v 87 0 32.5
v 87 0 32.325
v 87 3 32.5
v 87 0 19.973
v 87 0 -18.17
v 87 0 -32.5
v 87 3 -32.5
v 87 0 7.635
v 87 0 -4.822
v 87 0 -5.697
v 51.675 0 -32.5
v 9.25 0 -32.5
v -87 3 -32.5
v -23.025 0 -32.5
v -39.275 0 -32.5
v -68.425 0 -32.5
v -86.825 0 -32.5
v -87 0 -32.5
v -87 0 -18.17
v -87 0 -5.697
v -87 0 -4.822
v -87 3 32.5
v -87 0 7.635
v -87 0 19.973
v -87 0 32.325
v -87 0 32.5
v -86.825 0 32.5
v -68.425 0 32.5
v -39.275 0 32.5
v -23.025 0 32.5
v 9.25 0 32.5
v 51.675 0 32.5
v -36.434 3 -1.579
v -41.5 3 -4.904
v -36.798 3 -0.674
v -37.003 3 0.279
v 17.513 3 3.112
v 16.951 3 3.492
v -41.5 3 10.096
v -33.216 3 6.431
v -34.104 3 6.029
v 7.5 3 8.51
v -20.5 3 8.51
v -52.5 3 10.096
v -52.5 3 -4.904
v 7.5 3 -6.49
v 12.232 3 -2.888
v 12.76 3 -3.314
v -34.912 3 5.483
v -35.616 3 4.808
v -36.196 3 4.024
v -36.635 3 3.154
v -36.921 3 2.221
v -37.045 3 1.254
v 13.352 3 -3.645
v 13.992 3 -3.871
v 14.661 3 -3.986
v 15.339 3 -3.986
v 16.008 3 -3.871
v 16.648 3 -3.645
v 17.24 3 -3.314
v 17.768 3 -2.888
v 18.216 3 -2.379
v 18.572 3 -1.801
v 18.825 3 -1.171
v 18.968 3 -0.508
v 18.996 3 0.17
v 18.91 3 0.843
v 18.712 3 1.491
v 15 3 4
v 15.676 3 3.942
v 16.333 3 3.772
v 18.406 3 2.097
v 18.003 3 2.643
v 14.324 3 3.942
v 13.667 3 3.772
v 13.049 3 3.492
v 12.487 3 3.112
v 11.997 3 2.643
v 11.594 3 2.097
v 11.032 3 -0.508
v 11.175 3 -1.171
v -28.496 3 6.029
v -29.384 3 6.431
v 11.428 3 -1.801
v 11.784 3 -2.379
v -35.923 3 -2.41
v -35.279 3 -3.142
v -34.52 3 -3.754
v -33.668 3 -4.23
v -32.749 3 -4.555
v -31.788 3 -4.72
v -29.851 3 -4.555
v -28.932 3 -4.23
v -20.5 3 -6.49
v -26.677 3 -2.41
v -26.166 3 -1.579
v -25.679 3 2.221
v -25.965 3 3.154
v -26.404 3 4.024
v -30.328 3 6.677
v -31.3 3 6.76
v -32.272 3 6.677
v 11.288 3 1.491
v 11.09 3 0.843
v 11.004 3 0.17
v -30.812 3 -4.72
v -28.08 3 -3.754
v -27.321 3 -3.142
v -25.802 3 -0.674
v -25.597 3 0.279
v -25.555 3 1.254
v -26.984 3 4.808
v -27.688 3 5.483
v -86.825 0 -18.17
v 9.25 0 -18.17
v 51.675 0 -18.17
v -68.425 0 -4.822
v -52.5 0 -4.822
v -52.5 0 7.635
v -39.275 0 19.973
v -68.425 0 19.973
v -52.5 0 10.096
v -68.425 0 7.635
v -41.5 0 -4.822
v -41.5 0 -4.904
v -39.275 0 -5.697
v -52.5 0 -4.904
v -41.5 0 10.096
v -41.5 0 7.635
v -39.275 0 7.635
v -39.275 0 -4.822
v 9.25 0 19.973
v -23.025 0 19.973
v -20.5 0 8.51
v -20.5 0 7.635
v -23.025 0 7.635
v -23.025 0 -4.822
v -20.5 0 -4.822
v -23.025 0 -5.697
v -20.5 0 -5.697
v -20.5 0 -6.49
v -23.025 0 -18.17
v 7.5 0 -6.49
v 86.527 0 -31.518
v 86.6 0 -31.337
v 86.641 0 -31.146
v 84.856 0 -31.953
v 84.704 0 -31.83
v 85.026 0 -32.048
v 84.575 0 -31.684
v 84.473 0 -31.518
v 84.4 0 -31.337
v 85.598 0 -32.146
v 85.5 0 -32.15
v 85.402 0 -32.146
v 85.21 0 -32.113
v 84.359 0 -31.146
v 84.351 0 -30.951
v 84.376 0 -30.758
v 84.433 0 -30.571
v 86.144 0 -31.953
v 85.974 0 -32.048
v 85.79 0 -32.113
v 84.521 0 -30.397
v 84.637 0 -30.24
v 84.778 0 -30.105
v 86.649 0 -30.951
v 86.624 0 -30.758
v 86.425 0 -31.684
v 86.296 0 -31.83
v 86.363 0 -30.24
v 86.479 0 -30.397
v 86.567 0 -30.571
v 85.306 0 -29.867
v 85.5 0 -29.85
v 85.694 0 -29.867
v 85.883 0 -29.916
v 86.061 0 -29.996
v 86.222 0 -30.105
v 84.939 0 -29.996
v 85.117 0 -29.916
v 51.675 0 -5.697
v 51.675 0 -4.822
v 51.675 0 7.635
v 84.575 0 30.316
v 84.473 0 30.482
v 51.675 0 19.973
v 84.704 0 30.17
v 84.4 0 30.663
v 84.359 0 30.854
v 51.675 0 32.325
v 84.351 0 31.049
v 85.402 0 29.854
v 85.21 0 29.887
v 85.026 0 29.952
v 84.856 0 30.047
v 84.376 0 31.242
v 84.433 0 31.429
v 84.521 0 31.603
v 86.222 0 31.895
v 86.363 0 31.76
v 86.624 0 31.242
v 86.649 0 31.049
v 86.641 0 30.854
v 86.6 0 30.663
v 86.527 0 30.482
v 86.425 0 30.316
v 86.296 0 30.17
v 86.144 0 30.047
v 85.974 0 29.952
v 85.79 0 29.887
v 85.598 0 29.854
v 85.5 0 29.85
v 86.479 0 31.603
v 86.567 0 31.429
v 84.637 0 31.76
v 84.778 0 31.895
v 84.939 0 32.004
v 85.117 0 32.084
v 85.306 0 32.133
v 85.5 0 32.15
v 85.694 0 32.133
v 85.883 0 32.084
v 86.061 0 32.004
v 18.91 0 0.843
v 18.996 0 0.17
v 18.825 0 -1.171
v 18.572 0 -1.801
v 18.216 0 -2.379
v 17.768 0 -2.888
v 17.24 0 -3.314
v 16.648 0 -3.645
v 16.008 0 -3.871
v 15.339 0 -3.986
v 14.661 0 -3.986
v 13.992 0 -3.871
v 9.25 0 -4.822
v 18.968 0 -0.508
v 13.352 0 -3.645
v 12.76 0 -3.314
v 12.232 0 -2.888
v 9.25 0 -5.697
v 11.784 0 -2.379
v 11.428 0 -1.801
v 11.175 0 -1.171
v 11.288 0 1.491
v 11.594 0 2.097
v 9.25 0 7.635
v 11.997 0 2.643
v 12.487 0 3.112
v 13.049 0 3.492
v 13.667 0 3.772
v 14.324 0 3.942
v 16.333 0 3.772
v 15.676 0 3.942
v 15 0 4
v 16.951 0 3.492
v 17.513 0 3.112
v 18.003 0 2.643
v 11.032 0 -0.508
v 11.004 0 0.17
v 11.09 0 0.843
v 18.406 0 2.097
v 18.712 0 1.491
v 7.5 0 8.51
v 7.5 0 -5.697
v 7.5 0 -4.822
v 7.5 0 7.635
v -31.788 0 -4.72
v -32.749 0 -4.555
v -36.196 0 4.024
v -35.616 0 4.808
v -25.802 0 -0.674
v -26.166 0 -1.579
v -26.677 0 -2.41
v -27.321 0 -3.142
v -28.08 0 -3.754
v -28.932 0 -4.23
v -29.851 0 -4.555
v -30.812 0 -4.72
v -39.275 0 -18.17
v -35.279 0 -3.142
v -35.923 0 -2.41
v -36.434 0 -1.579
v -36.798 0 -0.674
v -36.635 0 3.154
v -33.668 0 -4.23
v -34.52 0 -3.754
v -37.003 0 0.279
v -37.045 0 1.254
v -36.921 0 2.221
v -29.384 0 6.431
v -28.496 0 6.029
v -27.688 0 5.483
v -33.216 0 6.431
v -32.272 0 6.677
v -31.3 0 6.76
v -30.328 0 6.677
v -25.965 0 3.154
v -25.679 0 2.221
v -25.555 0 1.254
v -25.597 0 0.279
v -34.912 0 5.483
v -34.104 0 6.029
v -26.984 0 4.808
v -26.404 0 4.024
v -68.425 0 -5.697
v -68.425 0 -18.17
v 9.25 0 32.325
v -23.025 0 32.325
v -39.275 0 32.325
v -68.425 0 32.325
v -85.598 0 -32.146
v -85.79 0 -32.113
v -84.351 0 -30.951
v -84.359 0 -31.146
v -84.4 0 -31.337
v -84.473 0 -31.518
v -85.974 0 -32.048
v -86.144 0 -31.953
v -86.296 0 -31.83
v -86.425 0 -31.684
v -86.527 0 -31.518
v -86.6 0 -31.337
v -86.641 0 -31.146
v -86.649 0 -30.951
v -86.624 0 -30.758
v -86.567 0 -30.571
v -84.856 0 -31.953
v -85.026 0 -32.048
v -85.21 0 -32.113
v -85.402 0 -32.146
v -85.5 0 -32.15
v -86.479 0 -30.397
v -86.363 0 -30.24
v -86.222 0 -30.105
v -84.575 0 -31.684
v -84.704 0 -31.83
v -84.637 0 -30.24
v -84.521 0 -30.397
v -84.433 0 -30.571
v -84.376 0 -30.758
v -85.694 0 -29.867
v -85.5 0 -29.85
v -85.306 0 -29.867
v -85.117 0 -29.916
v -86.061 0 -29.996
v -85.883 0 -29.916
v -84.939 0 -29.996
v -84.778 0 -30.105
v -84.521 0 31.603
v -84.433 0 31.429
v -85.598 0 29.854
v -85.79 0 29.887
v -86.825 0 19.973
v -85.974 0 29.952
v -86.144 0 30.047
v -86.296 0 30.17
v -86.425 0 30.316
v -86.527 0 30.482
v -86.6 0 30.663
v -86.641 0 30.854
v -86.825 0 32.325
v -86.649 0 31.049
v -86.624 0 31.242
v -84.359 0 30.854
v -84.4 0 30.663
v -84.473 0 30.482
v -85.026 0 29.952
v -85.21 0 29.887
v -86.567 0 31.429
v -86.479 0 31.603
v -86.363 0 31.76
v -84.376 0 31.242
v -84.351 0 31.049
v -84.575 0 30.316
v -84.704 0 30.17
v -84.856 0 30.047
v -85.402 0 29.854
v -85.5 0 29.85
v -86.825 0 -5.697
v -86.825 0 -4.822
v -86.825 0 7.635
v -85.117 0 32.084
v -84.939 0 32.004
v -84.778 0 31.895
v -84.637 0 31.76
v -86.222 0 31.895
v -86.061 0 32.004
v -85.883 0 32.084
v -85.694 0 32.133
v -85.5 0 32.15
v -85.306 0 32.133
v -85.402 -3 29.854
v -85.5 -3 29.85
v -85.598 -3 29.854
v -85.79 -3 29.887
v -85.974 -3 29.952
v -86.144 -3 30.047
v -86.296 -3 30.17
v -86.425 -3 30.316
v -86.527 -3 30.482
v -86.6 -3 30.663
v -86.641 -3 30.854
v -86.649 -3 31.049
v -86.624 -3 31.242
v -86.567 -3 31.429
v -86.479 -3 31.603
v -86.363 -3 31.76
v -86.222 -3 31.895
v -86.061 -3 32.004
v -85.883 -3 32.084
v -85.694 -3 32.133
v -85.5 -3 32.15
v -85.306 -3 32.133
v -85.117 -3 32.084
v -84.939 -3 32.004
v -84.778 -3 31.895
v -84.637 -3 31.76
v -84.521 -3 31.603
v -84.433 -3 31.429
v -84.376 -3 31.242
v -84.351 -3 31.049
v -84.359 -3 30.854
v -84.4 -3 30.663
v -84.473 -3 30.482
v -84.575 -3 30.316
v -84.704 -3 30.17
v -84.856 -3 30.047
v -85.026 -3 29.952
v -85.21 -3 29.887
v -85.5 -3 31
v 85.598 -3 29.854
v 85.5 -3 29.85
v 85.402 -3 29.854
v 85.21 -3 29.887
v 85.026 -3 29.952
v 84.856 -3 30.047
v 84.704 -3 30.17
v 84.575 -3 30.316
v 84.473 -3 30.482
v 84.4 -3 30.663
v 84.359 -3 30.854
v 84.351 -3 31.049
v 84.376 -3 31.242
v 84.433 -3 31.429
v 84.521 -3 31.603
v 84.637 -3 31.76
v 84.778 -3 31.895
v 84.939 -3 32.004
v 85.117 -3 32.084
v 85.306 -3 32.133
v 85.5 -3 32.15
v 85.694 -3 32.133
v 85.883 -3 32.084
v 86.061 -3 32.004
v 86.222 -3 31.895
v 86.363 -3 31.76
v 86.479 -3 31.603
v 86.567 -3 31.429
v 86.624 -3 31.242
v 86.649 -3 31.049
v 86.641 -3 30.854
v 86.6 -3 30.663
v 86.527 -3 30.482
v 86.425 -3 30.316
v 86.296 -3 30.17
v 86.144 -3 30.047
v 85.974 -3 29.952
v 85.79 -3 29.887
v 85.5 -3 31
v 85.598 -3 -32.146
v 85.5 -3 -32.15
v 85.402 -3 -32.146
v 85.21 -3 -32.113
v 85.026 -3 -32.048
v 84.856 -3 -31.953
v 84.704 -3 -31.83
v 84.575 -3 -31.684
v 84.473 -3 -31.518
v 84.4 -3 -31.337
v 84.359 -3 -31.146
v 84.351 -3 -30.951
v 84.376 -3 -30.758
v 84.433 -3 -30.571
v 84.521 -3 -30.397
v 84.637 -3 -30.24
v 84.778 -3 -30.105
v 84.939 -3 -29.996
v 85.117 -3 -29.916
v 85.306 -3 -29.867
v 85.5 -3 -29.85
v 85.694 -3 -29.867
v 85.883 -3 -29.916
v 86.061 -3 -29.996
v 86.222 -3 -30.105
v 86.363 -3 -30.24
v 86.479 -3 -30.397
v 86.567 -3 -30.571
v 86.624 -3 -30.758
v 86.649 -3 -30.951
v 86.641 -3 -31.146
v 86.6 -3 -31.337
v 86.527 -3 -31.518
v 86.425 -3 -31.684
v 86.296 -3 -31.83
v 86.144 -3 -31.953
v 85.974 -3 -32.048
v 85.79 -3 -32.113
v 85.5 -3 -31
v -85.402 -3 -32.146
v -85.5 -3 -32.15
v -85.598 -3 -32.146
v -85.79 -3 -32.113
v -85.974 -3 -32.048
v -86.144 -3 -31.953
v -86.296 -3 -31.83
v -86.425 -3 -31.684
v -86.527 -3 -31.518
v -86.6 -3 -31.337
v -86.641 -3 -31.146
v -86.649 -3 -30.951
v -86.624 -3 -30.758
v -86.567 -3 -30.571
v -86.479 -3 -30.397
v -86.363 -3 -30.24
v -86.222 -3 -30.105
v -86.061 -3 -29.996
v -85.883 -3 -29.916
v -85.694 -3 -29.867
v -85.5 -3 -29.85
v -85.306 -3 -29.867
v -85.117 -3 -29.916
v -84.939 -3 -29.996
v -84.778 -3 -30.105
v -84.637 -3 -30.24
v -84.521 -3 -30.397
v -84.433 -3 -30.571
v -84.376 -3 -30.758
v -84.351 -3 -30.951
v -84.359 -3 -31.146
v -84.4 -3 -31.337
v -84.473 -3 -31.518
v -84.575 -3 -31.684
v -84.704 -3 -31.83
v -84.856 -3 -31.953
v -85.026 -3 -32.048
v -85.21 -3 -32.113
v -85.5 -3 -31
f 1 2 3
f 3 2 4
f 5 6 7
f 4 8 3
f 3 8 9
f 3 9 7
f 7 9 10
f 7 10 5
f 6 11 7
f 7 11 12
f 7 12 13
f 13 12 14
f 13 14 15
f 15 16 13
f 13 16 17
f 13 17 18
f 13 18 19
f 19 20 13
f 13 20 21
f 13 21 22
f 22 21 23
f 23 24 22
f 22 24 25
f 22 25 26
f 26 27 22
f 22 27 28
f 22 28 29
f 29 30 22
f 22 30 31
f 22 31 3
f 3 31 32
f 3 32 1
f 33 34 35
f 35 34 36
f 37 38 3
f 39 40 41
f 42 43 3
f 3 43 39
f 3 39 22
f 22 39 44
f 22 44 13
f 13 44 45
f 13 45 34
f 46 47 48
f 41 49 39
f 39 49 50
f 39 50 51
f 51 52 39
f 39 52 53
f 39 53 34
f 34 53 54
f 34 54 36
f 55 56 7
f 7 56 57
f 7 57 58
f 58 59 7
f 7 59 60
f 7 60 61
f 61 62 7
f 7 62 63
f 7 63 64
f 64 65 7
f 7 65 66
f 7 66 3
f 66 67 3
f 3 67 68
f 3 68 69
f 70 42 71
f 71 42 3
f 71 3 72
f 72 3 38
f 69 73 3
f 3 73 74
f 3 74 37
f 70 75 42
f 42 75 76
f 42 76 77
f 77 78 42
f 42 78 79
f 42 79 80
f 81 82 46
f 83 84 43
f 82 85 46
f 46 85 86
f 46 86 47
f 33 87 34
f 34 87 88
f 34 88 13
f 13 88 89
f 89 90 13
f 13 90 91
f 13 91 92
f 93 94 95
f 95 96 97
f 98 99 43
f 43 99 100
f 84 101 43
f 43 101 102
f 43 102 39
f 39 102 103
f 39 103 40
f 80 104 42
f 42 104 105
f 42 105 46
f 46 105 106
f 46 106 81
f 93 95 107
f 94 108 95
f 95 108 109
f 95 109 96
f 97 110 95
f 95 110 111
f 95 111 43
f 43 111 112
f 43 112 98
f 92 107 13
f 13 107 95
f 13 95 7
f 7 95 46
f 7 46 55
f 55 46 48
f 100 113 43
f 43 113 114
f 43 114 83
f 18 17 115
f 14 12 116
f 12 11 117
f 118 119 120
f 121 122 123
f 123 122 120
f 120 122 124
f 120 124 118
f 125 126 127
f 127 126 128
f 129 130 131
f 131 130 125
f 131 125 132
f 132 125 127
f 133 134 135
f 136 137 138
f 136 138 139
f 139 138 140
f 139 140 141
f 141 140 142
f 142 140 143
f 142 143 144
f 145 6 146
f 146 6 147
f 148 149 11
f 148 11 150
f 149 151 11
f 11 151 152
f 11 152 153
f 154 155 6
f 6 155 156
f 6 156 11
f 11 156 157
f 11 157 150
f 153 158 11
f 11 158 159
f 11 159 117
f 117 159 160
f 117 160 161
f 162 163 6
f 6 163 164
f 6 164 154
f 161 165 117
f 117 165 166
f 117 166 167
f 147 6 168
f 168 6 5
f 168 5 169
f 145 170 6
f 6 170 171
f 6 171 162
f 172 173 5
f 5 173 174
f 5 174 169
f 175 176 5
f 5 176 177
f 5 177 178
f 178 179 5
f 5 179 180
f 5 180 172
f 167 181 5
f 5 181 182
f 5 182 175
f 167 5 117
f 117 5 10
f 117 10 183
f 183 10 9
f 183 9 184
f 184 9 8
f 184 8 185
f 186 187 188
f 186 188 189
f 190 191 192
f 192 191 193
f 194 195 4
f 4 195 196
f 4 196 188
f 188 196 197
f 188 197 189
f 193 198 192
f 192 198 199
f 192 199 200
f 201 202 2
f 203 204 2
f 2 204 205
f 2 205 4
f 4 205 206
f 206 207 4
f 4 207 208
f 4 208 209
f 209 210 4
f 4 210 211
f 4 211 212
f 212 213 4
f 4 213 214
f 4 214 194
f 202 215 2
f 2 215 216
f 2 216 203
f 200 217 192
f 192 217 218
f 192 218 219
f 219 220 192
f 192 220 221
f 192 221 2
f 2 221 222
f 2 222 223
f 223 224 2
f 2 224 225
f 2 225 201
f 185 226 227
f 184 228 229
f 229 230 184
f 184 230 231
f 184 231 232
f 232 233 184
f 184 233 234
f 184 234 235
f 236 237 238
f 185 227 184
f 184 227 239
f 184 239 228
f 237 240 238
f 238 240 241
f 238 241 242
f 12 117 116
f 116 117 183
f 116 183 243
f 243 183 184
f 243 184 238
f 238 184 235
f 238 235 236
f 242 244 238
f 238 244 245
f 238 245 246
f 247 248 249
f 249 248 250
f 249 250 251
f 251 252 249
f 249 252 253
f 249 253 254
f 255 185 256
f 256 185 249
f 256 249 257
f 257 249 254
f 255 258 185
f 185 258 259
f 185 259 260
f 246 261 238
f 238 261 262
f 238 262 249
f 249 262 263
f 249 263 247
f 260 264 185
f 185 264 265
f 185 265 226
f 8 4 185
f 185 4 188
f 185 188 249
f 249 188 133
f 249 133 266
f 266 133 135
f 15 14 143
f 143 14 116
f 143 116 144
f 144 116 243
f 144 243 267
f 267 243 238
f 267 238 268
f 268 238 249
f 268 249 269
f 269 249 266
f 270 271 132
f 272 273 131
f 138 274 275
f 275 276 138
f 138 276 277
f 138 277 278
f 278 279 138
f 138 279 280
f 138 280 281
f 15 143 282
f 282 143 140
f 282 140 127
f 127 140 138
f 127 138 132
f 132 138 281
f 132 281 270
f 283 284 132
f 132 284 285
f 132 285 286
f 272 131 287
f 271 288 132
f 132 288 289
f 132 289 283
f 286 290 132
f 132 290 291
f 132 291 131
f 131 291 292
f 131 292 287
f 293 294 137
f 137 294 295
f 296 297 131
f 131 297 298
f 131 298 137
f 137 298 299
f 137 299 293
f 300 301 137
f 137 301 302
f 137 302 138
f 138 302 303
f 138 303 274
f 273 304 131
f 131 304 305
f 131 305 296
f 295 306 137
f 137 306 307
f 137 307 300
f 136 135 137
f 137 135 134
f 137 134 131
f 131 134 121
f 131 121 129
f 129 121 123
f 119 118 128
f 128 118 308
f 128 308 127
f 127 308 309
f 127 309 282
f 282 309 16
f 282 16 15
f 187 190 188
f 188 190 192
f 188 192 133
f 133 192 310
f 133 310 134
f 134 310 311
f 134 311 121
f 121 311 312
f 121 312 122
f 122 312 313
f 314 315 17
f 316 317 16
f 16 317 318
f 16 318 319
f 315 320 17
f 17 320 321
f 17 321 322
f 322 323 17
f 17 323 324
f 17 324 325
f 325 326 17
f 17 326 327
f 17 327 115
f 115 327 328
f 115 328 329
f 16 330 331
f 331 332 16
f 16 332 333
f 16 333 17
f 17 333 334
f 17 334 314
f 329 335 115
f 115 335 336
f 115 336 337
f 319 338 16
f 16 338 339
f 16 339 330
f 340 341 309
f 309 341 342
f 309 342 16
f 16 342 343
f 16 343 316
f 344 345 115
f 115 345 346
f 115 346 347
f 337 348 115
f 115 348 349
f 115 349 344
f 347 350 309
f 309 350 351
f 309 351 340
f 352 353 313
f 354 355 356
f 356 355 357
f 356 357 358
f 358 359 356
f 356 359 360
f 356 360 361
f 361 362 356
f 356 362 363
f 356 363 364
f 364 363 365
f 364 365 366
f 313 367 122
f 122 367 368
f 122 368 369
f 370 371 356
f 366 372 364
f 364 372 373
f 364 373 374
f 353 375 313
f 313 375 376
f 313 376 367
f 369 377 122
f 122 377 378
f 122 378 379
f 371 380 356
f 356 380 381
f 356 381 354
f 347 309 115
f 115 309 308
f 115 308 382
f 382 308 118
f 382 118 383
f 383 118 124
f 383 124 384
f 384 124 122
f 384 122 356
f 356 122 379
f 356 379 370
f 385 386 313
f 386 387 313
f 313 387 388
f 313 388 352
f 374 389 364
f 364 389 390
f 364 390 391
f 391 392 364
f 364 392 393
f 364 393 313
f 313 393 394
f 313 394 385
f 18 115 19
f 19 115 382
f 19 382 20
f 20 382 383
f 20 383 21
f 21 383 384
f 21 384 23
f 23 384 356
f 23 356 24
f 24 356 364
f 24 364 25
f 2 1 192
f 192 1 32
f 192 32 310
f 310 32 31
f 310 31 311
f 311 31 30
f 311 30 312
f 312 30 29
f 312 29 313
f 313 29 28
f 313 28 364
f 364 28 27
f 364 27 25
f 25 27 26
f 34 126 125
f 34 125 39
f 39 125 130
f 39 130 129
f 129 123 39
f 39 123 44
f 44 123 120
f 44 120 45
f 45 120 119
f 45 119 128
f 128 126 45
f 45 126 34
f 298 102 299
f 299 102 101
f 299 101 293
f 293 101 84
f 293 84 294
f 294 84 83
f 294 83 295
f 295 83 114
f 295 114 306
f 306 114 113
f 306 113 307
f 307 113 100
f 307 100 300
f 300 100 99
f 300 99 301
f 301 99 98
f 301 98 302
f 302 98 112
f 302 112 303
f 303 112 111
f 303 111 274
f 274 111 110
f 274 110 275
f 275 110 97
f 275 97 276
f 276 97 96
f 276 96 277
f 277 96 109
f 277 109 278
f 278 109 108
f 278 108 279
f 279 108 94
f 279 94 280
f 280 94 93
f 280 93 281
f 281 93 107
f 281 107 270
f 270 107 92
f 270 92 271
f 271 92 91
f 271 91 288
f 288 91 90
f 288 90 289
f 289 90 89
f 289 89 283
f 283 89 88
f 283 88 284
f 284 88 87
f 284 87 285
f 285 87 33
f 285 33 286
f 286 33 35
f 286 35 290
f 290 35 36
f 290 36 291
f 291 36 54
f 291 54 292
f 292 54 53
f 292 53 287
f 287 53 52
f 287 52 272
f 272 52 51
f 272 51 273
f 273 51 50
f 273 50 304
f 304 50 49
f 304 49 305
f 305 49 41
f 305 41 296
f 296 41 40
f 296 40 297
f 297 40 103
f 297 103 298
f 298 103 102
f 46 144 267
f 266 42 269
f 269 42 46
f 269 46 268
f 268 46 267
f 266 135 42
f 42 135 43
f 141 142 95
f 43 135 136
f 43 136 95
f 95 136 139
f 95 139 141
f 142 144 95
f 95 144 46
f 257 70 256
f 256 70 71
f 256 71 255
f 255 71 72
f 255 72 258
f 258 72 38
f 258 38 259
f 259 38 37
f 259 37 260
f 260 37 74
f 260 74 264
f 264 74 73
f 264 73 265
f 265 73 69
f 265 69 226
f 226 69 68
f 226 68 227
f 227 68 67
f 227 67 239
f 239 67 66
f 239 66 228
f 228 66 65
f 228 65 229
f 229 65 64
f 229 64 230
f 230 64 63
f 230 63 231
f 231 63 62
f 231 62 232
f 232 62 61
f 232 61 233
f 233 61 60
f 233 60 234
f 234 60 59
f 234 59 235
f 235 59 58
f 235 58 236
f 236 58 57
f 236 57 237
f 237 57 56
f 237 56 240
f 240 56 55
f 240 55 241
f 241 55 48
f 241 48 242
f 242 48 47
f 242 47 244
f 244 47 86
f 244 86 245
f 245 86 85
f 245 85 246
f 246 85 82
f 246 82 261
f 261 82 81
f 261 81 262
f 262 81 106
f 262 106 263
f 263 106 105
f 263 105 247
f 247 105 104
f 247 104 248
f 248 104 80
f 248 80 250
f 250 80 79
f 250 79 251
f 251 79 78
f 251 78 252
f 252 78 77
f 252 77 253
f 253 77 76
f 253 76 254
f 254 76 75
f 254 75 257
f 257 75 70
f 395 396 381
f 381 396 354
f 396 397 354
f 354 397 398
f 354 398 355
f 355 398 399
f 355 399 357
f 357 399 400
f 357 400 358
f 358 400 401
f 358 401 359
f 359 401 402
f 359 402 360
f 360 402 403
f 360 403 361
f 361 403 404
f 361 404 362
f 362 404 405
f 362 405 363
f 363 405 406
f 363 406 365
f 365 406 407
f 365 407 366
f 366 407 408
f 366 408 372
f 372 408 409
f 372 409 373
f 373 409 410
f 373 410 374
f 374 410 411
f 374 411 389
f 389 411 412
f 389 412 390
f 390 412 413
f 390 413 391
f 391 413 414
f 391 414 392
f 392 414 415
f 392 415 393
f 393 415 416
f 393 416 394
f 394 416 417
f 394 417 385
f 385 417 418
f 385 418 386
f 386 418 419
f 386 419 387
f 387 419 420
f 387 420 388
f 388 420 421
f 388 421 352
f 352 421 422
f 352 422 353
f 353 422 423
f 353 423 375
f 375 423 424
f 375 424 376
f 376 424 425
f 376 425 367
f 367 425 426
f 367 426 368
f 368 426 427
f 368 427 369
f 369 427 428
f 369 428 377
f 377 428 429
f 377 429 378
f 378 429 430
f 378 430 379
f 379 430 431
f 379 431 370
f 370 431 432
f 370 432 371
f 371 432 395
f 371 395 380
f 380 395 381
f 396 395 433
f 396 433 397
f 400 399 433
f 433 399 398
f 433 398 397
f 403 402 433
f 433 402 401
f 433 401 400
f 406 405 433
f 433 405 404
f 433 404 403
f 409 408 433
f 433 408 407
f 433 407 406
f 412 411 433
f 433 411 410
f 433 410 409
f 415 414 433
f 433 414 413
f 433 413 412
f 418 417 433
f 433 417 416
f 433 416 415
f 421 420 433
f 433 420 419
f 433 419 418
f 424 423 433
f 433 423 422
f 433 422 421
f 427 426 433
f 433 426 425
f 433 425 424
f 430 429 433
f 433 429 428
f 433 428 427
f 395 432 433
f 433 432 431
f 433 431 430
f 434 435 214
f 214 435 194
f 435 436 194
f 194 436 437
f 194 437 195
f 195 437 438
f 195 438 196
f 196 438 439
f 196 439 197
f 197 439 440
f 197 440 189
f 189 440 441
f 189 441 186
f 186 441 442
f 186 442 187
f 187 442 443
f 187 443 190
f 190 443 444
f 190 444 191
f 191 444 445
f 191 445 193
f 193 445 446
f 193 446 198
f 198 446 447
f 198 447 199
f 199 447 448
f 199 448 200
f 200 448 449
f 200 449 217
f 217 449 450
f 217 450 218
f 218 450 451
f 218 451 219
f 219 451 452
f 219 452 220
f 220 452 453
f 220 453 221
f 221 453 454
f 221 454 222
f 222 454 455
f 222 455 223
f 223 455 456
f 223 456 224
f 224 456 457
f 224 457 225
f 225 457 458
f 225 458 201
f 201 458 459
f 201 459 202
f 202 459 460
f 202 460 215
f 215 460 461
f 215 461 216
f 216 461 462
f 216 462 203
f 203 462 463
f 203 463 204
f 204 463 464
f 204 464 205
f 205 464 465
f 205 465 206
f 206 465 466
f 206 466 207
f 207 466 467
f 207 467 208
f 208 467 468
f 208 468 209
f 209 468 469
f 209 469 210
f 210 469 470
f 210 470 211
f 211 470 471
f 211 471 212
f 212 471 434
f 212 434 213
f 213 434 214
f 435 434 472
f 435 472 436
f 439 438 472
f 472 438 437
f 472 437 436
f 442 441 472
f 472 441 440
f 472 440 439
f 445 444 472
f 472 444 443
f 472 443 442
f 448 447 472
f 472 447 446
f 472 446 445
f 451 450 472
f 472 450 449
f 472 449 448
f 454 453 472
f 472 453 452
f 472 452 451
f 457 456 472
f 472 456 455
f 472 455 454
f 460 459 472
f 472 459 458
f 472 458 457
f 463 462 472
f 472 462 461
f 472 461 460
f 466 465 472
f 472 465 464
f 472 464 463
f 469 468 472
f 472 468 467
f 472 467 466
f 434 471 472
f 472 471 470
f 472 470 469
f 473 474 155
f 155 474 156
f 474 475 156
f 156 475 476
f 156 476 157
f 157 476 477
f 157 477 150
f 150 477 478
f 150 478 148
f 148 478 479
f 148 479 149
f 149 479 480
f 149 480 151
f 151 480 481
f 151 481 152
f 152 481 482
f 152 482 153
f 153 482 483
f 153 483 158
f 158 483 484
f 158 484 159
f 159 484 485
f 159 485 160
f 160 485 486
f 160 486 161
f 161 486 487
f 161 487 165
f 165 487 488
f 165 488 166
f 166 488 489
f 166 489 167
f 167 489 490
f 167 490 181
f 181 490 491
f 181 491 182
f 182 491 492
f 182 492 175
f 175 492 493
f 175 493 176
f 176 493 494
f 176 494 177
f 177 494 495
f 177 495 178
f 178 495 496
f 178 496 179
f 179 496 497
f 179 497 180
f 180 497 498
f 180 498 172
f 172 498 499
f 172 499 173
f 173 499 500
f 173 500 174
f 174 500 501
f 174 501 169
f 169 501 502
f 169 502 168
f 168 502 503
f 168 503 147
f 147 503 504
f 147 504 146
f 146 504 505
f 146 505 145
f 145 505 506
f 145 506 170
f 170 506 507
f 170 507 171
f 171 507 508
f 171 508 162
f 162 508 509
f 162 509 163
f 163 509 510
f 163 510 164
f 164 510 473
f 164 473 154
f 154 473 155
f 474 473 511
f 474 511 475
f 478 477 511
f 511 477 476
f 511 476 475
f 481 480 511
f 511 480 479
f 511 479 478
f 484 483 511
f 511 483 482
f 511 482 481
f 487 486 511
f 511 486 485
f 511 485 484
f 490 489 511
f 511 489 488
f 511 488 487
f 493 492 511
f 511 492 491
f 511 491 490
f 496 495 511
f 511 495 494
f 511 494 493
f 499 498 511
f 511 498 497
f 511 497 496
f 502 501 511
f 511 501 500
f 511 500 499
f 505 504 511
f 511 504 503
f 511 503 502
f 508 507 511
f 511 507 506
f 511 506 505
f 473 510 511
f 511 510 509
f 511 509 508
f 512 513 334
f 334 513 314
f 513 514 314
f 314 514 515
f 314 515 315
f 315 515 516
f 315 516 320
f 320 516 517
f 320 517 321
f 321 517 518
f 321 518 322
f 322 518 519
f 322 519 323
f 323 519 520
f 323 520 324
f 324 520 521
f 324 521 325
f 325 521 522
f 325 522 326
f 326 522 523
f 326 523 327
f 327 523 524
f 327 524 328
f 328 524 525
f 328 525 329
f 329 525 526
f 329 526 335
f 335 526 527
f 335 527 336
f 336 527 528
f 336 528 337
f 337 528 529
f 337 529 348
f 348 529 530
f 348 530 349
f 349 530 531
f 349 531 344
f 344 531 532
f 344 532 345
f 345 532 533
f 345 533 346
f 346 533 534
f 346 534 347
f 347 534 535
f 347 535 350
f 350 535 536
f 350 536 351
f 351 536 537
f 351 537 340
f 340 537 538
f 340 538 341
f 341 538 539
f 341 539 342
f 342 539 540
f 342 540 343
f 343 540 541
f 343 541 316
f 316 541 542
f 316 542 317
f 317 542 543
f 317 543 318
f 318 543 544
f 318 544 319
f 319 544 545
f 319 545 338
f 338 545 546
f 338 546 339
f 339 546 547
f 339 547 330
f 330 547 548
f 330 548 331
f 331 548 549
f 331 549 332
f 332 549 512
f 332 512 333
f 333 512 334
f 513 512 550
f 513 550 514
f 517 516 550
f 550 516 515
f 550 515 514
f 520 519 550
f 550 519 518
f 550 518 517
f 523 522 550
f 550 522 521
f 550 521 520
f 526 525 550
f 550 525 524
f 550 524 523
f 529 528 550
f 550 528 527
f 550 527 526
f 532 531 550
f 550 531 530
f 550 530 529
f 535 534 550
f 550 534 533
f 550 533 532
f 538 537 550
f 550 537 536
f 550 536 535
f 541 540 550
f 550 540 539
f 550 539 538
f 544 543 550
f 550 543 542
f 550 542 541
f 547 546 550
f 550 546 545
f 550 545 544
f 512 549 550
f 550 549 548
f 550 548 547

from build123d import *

# Parameters (mm, degrees)
SKETCH1_W           = 174
SKETCH1_H           = 65
BOSS_EXTRUDE1_DEPTH = 3
SKETCH2_R           = 4
SKETCH2_R_2         = 5.75
SKETCH2_W           = 28
SKETCH2_H           = 15
SKETCH2_W_2         = 11
CUT_EXTRUDE1_DEPTH  = 3
SKETCH3_R           = 1.15
BOSS_EXTRUDE2_DEPTH = 3


with BuildPart() as part:
    # Sketch1 → Boss-Extrude1 (new body)
    with BuildSketch(Plane(origin=(0, 0, 0), x_dir=(1, 0, 0), z_dir=(0, 1, 0))):
        Rectangle(SKETCH1_W, SKETCH1_H)
    extrude(amount=BOSS_EXTRUDE1_DEPTH)

    # Sketch2 → Cut-Extrude1 (cut)
    with BuildSketch(Plane(origin=(0, 3, 0), x_dir=(1, 0, 0), z_dir=(0, 1, 0))):
        with Locations(Location((15, 0, 0), (0, 0, 270))):
            Circle(SKETCH2_R)
        with Locations(Location((-31.3, -1.00957594, 0), (0, 0, 270))):
            Circle(SKETCH2_R_2)
        with Locations((-6.5, -1.00957594)):
            Rectangle(SKETCH2_W, SKETCH2_H)
        with Locations((-47, -2.596032883)):
            Rectangle(SKETCH2_W_2, SKETCH2_H)
    extrude(amount=-CUT_EXTRUDE1_DEPTH, mode=Mode.SUBTRACT)

    # Sketch3 → Boss-Extrude2 (add)
    with BuildSketch(Plane.XZ):
        with Locations(Location((-85.5, 31, 0), (0, 0, 270))):
            Circle(SKETCH3_R)
        with Locations(Location((85.5, 31, 0), (0, 0, 270))):
            Circle(SKETCH3_R)
        with Locations(Location((85.5, -31, 0), (0, 0, 270))):
            Circle(SKETCH3_R)
        with Locations(Location((-85.5, -31, 0), (0, 0, 270))):
            Circle(SKETCH3_R)
    extrude(amount=BOSS_EXTRUDE2_DEPTH)


solid = part.part
